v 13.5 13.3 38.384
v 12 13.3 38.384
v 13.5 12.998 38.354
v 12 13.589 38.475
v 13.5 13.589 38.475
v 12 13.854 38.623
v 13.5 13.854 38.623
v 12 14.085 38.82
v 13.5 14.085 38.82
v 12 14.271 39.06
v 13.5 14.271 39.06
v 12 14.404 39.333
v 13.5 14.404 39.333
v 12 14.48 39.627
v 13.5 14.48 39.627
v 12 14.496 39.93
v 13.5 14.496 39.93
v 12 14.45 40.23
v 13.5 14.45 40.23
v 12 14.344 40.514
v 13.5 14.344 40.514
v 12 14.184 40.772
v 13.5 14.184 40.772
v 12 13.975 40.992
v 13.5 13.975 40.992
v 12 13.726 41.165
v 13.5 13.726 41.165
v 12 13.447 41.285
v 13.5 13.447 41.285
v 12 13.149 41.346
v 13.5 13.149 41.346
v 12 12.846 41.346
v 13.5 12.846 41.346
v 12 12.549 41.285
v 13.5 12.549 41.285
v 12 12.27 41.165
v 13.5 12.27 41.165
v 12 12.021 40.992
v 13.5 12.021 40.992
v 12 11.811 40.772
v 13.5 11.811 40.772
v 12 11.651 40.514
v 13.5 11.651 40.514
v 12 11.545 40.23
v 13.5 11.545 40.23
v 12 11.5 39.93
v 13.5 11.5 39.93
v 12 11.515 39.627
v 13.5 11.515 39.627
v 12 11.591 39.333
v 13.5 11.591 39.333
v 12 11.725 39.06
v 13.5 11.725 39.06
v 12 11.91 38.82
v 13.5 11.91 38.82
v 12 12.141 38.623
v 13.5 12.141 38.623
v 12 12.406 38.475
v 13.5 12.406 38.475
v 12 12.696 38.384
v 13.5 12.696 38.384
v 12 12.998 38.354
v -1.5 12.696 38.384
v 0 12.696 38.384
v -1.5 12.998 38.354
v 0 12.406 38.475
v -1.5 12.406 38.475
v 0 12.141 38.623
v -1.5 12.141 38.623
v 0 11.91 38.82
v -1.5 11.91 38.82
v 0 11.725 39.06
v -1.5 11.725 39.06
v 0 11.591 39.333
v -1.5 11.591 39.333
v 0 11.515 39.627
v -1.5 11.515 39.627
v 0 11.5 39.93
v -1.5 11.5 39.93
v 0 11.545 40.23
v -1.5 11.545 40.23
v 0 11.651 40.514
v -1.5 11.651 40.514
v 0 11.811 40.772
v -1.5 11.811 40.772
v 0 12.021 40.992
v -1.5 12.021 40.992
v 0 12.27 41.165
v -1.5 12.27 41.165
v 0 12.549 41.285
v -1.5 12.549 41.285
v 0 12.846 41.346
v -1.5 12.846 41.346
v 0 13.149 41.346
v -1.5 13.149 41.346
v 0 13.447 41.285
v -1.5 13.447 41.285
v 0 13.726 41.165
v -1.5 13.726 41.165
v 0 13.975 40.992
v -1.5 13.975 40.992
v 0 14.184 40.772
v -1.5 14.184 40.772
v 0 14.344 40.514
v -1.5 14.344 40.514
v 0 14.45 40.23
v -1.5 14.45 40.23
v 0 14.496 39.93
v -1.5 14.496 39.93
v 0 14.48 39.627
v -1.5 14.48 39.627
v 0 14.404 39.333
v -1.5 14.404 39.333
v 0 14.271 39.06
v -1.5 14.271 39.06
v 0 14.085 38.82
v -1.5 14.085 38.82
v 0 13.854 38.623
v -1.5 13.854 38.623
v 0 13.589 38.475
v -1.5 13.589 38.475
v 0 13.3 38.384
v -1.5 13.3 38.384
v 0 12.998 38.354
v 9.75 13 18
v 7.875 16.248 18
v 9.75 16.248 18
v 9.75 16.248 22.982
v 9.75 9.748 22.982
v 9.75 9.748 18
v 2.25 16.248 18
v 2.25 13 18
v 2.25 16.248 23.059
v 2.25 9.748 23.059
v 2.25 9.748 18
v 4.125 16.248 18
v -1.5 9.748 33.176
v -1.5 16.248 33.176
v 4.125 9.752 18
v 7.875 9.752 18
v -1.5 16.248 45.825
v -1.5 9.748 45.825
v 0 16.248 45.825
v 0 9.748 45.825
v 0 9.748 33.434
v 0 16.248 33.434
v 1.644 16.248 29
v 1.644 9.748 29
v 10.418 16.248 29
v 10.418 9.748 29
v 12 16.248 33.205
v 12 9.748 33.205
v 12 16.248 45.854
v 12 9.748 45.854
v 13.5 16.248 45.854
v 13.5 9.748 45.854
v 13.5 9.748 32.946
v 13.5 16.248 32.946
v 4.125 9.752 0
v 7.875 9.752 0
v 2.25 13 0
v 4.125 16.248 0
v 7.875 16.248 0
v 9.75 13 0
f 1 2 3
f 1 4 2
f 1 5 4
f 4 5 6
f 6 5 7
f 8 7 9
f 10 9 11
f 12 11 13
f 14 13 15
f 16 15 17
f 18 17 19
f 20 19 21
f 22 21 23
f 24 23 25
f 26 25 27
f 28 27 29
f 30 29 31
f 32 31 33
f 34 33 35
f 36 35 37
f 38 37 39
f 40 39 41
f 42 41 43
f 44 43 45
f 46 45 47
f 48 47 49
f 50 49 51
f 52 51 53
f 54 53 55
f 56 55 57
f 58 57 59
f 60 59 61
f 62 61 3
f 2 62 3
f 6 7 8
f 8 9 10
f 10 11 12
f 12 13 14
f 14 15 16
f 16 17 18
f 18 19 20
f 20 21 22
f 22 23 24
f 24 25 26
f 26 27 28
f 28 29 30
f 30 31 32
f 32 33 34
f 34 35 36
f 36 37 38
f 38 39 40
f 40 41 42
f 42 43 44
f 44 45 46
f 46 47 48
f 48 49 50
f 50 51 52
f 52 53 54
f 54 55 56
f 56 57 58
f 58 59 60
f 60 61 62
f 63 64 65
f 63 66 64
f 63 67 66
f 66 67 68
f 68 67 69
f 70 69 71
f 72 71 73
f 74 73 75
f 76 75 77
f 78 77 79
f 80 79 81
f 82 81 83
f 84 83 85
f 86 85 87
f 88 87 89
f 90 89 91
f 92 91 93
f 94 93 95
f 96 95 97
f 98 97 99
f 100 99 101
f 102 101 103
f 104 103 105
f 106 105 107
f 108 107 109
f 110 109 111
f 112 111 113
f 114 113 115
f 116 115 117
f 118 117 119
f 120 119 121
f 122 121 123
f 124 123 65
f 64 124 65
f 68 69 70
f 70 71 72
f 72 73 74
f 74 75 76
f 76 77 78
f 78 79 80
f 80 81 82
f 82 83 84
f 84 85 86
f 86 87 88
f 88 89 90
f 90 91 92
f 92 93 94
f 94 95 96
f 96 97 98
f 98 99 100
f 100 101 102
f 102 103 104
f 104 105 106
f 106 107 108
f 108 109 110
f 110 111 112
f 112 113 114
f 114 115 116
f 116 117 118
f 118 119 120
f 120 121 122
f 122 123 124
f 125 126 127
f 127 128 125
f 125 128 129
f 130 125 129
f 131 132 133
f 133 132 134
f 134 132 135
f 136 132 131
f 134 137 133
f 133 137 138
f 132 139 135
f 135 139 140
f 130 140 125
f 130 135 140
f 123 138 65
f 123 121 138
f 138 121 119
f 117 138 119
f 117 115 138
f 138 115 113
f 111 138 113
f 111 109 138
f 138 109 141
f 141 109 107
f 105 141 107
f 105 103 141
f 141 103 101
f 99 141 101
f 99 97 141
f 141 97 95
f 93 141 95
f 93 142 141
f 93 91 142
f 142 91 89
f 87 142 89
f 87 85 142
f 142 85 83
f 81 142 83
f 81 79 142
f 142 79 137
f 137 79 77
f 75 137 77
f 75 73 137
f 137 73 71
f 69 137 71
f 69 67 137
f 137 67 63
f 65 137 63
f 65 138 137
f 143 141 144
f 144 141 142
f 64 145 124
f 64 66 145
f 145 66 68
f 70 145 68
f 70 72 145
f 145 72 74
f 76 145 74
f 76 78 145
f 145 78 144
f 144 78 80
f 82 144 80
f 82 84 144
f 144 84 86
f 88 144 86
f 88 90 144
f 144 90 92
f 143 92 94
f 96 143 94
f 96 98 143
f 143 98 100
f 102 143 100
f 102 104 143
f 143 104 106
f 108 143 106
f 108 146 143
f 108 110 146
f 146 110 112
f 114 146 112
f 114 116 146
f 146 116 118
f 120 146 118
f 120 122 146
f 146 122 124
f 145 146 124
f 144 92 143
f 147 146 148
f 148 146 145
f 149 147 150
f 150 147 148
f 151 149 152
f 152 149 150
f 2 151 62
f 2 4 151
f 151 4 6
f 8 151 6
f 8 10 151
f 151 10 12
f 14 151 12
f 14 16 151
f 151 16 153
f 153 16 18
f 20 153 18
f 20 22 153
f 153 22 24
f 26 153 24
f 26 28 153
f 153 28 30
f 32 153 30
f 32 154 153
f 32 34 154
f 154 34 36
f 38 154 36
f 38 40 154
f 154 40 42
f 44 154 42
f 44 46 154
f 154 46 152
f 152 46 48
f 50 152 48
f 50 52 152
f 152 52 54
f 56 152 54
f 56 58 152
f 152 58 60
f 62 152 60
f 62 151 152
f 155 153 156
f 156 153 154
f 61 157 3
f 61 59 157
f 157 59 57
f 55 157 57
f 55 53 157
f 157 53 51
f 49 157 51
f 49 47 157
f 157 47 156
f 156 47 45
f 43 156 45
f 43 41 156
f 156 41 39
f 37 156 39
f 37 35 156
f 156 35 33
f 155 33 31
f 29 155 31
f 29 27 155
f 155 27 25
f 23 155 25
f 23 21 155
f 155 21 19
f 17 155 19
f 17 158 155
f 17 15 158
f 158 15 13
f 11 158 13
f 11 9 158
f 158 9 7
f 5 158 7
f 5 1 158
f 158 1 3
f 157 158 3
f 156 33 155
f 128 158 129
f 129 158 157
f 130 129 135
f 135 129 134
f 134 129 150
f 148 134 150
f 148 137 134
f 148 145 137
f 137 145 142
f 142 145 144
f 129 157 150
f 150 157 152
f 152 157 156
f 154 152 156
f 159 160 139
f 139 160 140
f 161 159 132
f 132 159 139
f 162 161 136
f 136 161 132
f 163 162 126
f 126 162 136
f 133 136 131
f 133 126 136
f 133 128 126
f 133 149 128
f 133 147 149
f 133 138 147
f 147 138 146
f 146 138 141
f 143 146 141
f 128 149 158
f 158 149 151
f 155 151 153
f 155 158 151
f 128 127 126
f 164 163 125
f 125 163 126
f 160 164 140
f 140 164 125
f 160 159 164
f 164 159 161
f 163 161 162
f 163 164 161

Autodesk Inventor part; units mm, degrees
ref_plane "YZ Plane" through (0, 0, 0) normal (1, 0, 0) x (0, 1, 0)
ref_plane "XZ Plane" through (0, 0, 0) normal (0, 1, 0) x (-1, 0, 0)
ref_plane "XY Plane" through (0, 0, 0) normal (0, 0, 1) x (1, 0, 0)
sketch "Sketch1" plane through (0, 0, 0) normal (0, 0, 1) x (1, 0, 0)
  line L0 (9.75, 13) -> (7.875, 9.7524)
  line L1 (7.875, 9.7524) -> (4.125, 9.7524)
  line L2 (4.125, 9.7524) -> (2.25, 13)
  line L3 (2.25, 13) -> (4.125, 16.2476)
  line L4 (4.125, 16.2476) -> (7.875, 16.2476)
  line L5 (7.875, 16.2476) -> (9.75, 13)
  point P0 (0, 0)
  point P1 (6, 13)
  dimension "d0" = 7.5
extrude "Extrusion1" add sketch "Sketch1" along normal blind 18
sketch "Sketch2" plane through (4.125, 16.2476, 0) normal (0, 1, 0) x (1, 0, 0)
  line L0 (3.75, -18) -> (5.625, -18) projected
  line L1 (3.75, -18) -> (0, -18) projected
  line L2 (0, -18) -> (-5.625, -33.1757)
  line L3 (-1.875, 0) -> (-1.875, -18) projected
  line L4 (-5.625, -45.8247) -> (-5.625, -33.1757)
  line L5 (3.75, -18) -> (1.875, -18)
  line L6 (9.375, -45.8538) -> (9.375, -32.946)
  line L7 (9.375, -32.946) -> (3.75, -18)
  line L8 (9.375, -45.8538) -> (7.875, -45.8538)
  line L9 (7.875, -45.8538) -> (7.875, -33.2047)
  line L10 (-5.625, -45.8247) -> (-4.125, -45.8247)
  line L11 (-4.125, -45.8247) -> (-4.125, -33.4344)
  line L12 (2.1735, -18.0436) -> (2.158, -18)
  line L13 (1.875, -29) -> (6.2925, -29)
  line L14 (-2.4813, -29) -> (1.875, -29)
  line L15 (-4.125, -33.4344) -> (-2.4813, -29)
  line L16 (6.2925, -29) -> (7.875, -33.2047)
  line L17 (1.875, -18) -> (1.875, -45.8247)
  point P0 (-4.125, 0)
  dimension "d12" = 1.5
  dimension "d13" = 1.5
  dimension "d16" = 27.8247
  dimension "d17" = 11
  dimension "d21" = 12
extrude "Extrusion2" add sketch "Sketch2" against normal blind 6.5
sketch "Sketch3" plane through (-1.5, 9.7476, 33.1757) normal (-0.9377, 0, -0.3476) x (-0.3476, 0, 0.9377)
  point P0 (-31.6289, -9.7476)
sketch "Sketch5" plane through (4.125, 16.2476, 0) normal (0, 1, 0) x (1, 0, 0)
  line L0 (-1.875, -18) -> (0, -18) projected
  line L1 (-1.875, -18) -> (-1.875, -23.0586)
  line L2 (0, -18) -> (-5.625, -33.1757) projected
  line L3 (3.75, -18) -> (5.625, -18) projected
  line L4 (5.625, -18) -> (5.625, -22.982)
  line L5 (9.375, -32.946) -> (3.75, -18) projected
  point P0 (-4.125, 0)
extrude "Extrusion3" add sketch "Sketch5" against normal blind 6.5
sketch "Sketch6" plane through (13.5, 16.2476, 45.8538) normal (1, 0, 0) x (0, 0, -1)
  line L0 (0, 0) -> (0, -3.25)
  line L1 (0, 0) -> (0, -6.5) projected
  line L2 (0, -3.25) -> (6, -3.25)
  circle A0 centre (6, -3.25) radius 1.5
  point P0 (45.8538, -16.2476)
  dimension "d27" = 6
  dimension "d28" = 3
extrude "Extrusion4" cut sketch "Sketch6" against normal through all
properties part number "Test de pince"
